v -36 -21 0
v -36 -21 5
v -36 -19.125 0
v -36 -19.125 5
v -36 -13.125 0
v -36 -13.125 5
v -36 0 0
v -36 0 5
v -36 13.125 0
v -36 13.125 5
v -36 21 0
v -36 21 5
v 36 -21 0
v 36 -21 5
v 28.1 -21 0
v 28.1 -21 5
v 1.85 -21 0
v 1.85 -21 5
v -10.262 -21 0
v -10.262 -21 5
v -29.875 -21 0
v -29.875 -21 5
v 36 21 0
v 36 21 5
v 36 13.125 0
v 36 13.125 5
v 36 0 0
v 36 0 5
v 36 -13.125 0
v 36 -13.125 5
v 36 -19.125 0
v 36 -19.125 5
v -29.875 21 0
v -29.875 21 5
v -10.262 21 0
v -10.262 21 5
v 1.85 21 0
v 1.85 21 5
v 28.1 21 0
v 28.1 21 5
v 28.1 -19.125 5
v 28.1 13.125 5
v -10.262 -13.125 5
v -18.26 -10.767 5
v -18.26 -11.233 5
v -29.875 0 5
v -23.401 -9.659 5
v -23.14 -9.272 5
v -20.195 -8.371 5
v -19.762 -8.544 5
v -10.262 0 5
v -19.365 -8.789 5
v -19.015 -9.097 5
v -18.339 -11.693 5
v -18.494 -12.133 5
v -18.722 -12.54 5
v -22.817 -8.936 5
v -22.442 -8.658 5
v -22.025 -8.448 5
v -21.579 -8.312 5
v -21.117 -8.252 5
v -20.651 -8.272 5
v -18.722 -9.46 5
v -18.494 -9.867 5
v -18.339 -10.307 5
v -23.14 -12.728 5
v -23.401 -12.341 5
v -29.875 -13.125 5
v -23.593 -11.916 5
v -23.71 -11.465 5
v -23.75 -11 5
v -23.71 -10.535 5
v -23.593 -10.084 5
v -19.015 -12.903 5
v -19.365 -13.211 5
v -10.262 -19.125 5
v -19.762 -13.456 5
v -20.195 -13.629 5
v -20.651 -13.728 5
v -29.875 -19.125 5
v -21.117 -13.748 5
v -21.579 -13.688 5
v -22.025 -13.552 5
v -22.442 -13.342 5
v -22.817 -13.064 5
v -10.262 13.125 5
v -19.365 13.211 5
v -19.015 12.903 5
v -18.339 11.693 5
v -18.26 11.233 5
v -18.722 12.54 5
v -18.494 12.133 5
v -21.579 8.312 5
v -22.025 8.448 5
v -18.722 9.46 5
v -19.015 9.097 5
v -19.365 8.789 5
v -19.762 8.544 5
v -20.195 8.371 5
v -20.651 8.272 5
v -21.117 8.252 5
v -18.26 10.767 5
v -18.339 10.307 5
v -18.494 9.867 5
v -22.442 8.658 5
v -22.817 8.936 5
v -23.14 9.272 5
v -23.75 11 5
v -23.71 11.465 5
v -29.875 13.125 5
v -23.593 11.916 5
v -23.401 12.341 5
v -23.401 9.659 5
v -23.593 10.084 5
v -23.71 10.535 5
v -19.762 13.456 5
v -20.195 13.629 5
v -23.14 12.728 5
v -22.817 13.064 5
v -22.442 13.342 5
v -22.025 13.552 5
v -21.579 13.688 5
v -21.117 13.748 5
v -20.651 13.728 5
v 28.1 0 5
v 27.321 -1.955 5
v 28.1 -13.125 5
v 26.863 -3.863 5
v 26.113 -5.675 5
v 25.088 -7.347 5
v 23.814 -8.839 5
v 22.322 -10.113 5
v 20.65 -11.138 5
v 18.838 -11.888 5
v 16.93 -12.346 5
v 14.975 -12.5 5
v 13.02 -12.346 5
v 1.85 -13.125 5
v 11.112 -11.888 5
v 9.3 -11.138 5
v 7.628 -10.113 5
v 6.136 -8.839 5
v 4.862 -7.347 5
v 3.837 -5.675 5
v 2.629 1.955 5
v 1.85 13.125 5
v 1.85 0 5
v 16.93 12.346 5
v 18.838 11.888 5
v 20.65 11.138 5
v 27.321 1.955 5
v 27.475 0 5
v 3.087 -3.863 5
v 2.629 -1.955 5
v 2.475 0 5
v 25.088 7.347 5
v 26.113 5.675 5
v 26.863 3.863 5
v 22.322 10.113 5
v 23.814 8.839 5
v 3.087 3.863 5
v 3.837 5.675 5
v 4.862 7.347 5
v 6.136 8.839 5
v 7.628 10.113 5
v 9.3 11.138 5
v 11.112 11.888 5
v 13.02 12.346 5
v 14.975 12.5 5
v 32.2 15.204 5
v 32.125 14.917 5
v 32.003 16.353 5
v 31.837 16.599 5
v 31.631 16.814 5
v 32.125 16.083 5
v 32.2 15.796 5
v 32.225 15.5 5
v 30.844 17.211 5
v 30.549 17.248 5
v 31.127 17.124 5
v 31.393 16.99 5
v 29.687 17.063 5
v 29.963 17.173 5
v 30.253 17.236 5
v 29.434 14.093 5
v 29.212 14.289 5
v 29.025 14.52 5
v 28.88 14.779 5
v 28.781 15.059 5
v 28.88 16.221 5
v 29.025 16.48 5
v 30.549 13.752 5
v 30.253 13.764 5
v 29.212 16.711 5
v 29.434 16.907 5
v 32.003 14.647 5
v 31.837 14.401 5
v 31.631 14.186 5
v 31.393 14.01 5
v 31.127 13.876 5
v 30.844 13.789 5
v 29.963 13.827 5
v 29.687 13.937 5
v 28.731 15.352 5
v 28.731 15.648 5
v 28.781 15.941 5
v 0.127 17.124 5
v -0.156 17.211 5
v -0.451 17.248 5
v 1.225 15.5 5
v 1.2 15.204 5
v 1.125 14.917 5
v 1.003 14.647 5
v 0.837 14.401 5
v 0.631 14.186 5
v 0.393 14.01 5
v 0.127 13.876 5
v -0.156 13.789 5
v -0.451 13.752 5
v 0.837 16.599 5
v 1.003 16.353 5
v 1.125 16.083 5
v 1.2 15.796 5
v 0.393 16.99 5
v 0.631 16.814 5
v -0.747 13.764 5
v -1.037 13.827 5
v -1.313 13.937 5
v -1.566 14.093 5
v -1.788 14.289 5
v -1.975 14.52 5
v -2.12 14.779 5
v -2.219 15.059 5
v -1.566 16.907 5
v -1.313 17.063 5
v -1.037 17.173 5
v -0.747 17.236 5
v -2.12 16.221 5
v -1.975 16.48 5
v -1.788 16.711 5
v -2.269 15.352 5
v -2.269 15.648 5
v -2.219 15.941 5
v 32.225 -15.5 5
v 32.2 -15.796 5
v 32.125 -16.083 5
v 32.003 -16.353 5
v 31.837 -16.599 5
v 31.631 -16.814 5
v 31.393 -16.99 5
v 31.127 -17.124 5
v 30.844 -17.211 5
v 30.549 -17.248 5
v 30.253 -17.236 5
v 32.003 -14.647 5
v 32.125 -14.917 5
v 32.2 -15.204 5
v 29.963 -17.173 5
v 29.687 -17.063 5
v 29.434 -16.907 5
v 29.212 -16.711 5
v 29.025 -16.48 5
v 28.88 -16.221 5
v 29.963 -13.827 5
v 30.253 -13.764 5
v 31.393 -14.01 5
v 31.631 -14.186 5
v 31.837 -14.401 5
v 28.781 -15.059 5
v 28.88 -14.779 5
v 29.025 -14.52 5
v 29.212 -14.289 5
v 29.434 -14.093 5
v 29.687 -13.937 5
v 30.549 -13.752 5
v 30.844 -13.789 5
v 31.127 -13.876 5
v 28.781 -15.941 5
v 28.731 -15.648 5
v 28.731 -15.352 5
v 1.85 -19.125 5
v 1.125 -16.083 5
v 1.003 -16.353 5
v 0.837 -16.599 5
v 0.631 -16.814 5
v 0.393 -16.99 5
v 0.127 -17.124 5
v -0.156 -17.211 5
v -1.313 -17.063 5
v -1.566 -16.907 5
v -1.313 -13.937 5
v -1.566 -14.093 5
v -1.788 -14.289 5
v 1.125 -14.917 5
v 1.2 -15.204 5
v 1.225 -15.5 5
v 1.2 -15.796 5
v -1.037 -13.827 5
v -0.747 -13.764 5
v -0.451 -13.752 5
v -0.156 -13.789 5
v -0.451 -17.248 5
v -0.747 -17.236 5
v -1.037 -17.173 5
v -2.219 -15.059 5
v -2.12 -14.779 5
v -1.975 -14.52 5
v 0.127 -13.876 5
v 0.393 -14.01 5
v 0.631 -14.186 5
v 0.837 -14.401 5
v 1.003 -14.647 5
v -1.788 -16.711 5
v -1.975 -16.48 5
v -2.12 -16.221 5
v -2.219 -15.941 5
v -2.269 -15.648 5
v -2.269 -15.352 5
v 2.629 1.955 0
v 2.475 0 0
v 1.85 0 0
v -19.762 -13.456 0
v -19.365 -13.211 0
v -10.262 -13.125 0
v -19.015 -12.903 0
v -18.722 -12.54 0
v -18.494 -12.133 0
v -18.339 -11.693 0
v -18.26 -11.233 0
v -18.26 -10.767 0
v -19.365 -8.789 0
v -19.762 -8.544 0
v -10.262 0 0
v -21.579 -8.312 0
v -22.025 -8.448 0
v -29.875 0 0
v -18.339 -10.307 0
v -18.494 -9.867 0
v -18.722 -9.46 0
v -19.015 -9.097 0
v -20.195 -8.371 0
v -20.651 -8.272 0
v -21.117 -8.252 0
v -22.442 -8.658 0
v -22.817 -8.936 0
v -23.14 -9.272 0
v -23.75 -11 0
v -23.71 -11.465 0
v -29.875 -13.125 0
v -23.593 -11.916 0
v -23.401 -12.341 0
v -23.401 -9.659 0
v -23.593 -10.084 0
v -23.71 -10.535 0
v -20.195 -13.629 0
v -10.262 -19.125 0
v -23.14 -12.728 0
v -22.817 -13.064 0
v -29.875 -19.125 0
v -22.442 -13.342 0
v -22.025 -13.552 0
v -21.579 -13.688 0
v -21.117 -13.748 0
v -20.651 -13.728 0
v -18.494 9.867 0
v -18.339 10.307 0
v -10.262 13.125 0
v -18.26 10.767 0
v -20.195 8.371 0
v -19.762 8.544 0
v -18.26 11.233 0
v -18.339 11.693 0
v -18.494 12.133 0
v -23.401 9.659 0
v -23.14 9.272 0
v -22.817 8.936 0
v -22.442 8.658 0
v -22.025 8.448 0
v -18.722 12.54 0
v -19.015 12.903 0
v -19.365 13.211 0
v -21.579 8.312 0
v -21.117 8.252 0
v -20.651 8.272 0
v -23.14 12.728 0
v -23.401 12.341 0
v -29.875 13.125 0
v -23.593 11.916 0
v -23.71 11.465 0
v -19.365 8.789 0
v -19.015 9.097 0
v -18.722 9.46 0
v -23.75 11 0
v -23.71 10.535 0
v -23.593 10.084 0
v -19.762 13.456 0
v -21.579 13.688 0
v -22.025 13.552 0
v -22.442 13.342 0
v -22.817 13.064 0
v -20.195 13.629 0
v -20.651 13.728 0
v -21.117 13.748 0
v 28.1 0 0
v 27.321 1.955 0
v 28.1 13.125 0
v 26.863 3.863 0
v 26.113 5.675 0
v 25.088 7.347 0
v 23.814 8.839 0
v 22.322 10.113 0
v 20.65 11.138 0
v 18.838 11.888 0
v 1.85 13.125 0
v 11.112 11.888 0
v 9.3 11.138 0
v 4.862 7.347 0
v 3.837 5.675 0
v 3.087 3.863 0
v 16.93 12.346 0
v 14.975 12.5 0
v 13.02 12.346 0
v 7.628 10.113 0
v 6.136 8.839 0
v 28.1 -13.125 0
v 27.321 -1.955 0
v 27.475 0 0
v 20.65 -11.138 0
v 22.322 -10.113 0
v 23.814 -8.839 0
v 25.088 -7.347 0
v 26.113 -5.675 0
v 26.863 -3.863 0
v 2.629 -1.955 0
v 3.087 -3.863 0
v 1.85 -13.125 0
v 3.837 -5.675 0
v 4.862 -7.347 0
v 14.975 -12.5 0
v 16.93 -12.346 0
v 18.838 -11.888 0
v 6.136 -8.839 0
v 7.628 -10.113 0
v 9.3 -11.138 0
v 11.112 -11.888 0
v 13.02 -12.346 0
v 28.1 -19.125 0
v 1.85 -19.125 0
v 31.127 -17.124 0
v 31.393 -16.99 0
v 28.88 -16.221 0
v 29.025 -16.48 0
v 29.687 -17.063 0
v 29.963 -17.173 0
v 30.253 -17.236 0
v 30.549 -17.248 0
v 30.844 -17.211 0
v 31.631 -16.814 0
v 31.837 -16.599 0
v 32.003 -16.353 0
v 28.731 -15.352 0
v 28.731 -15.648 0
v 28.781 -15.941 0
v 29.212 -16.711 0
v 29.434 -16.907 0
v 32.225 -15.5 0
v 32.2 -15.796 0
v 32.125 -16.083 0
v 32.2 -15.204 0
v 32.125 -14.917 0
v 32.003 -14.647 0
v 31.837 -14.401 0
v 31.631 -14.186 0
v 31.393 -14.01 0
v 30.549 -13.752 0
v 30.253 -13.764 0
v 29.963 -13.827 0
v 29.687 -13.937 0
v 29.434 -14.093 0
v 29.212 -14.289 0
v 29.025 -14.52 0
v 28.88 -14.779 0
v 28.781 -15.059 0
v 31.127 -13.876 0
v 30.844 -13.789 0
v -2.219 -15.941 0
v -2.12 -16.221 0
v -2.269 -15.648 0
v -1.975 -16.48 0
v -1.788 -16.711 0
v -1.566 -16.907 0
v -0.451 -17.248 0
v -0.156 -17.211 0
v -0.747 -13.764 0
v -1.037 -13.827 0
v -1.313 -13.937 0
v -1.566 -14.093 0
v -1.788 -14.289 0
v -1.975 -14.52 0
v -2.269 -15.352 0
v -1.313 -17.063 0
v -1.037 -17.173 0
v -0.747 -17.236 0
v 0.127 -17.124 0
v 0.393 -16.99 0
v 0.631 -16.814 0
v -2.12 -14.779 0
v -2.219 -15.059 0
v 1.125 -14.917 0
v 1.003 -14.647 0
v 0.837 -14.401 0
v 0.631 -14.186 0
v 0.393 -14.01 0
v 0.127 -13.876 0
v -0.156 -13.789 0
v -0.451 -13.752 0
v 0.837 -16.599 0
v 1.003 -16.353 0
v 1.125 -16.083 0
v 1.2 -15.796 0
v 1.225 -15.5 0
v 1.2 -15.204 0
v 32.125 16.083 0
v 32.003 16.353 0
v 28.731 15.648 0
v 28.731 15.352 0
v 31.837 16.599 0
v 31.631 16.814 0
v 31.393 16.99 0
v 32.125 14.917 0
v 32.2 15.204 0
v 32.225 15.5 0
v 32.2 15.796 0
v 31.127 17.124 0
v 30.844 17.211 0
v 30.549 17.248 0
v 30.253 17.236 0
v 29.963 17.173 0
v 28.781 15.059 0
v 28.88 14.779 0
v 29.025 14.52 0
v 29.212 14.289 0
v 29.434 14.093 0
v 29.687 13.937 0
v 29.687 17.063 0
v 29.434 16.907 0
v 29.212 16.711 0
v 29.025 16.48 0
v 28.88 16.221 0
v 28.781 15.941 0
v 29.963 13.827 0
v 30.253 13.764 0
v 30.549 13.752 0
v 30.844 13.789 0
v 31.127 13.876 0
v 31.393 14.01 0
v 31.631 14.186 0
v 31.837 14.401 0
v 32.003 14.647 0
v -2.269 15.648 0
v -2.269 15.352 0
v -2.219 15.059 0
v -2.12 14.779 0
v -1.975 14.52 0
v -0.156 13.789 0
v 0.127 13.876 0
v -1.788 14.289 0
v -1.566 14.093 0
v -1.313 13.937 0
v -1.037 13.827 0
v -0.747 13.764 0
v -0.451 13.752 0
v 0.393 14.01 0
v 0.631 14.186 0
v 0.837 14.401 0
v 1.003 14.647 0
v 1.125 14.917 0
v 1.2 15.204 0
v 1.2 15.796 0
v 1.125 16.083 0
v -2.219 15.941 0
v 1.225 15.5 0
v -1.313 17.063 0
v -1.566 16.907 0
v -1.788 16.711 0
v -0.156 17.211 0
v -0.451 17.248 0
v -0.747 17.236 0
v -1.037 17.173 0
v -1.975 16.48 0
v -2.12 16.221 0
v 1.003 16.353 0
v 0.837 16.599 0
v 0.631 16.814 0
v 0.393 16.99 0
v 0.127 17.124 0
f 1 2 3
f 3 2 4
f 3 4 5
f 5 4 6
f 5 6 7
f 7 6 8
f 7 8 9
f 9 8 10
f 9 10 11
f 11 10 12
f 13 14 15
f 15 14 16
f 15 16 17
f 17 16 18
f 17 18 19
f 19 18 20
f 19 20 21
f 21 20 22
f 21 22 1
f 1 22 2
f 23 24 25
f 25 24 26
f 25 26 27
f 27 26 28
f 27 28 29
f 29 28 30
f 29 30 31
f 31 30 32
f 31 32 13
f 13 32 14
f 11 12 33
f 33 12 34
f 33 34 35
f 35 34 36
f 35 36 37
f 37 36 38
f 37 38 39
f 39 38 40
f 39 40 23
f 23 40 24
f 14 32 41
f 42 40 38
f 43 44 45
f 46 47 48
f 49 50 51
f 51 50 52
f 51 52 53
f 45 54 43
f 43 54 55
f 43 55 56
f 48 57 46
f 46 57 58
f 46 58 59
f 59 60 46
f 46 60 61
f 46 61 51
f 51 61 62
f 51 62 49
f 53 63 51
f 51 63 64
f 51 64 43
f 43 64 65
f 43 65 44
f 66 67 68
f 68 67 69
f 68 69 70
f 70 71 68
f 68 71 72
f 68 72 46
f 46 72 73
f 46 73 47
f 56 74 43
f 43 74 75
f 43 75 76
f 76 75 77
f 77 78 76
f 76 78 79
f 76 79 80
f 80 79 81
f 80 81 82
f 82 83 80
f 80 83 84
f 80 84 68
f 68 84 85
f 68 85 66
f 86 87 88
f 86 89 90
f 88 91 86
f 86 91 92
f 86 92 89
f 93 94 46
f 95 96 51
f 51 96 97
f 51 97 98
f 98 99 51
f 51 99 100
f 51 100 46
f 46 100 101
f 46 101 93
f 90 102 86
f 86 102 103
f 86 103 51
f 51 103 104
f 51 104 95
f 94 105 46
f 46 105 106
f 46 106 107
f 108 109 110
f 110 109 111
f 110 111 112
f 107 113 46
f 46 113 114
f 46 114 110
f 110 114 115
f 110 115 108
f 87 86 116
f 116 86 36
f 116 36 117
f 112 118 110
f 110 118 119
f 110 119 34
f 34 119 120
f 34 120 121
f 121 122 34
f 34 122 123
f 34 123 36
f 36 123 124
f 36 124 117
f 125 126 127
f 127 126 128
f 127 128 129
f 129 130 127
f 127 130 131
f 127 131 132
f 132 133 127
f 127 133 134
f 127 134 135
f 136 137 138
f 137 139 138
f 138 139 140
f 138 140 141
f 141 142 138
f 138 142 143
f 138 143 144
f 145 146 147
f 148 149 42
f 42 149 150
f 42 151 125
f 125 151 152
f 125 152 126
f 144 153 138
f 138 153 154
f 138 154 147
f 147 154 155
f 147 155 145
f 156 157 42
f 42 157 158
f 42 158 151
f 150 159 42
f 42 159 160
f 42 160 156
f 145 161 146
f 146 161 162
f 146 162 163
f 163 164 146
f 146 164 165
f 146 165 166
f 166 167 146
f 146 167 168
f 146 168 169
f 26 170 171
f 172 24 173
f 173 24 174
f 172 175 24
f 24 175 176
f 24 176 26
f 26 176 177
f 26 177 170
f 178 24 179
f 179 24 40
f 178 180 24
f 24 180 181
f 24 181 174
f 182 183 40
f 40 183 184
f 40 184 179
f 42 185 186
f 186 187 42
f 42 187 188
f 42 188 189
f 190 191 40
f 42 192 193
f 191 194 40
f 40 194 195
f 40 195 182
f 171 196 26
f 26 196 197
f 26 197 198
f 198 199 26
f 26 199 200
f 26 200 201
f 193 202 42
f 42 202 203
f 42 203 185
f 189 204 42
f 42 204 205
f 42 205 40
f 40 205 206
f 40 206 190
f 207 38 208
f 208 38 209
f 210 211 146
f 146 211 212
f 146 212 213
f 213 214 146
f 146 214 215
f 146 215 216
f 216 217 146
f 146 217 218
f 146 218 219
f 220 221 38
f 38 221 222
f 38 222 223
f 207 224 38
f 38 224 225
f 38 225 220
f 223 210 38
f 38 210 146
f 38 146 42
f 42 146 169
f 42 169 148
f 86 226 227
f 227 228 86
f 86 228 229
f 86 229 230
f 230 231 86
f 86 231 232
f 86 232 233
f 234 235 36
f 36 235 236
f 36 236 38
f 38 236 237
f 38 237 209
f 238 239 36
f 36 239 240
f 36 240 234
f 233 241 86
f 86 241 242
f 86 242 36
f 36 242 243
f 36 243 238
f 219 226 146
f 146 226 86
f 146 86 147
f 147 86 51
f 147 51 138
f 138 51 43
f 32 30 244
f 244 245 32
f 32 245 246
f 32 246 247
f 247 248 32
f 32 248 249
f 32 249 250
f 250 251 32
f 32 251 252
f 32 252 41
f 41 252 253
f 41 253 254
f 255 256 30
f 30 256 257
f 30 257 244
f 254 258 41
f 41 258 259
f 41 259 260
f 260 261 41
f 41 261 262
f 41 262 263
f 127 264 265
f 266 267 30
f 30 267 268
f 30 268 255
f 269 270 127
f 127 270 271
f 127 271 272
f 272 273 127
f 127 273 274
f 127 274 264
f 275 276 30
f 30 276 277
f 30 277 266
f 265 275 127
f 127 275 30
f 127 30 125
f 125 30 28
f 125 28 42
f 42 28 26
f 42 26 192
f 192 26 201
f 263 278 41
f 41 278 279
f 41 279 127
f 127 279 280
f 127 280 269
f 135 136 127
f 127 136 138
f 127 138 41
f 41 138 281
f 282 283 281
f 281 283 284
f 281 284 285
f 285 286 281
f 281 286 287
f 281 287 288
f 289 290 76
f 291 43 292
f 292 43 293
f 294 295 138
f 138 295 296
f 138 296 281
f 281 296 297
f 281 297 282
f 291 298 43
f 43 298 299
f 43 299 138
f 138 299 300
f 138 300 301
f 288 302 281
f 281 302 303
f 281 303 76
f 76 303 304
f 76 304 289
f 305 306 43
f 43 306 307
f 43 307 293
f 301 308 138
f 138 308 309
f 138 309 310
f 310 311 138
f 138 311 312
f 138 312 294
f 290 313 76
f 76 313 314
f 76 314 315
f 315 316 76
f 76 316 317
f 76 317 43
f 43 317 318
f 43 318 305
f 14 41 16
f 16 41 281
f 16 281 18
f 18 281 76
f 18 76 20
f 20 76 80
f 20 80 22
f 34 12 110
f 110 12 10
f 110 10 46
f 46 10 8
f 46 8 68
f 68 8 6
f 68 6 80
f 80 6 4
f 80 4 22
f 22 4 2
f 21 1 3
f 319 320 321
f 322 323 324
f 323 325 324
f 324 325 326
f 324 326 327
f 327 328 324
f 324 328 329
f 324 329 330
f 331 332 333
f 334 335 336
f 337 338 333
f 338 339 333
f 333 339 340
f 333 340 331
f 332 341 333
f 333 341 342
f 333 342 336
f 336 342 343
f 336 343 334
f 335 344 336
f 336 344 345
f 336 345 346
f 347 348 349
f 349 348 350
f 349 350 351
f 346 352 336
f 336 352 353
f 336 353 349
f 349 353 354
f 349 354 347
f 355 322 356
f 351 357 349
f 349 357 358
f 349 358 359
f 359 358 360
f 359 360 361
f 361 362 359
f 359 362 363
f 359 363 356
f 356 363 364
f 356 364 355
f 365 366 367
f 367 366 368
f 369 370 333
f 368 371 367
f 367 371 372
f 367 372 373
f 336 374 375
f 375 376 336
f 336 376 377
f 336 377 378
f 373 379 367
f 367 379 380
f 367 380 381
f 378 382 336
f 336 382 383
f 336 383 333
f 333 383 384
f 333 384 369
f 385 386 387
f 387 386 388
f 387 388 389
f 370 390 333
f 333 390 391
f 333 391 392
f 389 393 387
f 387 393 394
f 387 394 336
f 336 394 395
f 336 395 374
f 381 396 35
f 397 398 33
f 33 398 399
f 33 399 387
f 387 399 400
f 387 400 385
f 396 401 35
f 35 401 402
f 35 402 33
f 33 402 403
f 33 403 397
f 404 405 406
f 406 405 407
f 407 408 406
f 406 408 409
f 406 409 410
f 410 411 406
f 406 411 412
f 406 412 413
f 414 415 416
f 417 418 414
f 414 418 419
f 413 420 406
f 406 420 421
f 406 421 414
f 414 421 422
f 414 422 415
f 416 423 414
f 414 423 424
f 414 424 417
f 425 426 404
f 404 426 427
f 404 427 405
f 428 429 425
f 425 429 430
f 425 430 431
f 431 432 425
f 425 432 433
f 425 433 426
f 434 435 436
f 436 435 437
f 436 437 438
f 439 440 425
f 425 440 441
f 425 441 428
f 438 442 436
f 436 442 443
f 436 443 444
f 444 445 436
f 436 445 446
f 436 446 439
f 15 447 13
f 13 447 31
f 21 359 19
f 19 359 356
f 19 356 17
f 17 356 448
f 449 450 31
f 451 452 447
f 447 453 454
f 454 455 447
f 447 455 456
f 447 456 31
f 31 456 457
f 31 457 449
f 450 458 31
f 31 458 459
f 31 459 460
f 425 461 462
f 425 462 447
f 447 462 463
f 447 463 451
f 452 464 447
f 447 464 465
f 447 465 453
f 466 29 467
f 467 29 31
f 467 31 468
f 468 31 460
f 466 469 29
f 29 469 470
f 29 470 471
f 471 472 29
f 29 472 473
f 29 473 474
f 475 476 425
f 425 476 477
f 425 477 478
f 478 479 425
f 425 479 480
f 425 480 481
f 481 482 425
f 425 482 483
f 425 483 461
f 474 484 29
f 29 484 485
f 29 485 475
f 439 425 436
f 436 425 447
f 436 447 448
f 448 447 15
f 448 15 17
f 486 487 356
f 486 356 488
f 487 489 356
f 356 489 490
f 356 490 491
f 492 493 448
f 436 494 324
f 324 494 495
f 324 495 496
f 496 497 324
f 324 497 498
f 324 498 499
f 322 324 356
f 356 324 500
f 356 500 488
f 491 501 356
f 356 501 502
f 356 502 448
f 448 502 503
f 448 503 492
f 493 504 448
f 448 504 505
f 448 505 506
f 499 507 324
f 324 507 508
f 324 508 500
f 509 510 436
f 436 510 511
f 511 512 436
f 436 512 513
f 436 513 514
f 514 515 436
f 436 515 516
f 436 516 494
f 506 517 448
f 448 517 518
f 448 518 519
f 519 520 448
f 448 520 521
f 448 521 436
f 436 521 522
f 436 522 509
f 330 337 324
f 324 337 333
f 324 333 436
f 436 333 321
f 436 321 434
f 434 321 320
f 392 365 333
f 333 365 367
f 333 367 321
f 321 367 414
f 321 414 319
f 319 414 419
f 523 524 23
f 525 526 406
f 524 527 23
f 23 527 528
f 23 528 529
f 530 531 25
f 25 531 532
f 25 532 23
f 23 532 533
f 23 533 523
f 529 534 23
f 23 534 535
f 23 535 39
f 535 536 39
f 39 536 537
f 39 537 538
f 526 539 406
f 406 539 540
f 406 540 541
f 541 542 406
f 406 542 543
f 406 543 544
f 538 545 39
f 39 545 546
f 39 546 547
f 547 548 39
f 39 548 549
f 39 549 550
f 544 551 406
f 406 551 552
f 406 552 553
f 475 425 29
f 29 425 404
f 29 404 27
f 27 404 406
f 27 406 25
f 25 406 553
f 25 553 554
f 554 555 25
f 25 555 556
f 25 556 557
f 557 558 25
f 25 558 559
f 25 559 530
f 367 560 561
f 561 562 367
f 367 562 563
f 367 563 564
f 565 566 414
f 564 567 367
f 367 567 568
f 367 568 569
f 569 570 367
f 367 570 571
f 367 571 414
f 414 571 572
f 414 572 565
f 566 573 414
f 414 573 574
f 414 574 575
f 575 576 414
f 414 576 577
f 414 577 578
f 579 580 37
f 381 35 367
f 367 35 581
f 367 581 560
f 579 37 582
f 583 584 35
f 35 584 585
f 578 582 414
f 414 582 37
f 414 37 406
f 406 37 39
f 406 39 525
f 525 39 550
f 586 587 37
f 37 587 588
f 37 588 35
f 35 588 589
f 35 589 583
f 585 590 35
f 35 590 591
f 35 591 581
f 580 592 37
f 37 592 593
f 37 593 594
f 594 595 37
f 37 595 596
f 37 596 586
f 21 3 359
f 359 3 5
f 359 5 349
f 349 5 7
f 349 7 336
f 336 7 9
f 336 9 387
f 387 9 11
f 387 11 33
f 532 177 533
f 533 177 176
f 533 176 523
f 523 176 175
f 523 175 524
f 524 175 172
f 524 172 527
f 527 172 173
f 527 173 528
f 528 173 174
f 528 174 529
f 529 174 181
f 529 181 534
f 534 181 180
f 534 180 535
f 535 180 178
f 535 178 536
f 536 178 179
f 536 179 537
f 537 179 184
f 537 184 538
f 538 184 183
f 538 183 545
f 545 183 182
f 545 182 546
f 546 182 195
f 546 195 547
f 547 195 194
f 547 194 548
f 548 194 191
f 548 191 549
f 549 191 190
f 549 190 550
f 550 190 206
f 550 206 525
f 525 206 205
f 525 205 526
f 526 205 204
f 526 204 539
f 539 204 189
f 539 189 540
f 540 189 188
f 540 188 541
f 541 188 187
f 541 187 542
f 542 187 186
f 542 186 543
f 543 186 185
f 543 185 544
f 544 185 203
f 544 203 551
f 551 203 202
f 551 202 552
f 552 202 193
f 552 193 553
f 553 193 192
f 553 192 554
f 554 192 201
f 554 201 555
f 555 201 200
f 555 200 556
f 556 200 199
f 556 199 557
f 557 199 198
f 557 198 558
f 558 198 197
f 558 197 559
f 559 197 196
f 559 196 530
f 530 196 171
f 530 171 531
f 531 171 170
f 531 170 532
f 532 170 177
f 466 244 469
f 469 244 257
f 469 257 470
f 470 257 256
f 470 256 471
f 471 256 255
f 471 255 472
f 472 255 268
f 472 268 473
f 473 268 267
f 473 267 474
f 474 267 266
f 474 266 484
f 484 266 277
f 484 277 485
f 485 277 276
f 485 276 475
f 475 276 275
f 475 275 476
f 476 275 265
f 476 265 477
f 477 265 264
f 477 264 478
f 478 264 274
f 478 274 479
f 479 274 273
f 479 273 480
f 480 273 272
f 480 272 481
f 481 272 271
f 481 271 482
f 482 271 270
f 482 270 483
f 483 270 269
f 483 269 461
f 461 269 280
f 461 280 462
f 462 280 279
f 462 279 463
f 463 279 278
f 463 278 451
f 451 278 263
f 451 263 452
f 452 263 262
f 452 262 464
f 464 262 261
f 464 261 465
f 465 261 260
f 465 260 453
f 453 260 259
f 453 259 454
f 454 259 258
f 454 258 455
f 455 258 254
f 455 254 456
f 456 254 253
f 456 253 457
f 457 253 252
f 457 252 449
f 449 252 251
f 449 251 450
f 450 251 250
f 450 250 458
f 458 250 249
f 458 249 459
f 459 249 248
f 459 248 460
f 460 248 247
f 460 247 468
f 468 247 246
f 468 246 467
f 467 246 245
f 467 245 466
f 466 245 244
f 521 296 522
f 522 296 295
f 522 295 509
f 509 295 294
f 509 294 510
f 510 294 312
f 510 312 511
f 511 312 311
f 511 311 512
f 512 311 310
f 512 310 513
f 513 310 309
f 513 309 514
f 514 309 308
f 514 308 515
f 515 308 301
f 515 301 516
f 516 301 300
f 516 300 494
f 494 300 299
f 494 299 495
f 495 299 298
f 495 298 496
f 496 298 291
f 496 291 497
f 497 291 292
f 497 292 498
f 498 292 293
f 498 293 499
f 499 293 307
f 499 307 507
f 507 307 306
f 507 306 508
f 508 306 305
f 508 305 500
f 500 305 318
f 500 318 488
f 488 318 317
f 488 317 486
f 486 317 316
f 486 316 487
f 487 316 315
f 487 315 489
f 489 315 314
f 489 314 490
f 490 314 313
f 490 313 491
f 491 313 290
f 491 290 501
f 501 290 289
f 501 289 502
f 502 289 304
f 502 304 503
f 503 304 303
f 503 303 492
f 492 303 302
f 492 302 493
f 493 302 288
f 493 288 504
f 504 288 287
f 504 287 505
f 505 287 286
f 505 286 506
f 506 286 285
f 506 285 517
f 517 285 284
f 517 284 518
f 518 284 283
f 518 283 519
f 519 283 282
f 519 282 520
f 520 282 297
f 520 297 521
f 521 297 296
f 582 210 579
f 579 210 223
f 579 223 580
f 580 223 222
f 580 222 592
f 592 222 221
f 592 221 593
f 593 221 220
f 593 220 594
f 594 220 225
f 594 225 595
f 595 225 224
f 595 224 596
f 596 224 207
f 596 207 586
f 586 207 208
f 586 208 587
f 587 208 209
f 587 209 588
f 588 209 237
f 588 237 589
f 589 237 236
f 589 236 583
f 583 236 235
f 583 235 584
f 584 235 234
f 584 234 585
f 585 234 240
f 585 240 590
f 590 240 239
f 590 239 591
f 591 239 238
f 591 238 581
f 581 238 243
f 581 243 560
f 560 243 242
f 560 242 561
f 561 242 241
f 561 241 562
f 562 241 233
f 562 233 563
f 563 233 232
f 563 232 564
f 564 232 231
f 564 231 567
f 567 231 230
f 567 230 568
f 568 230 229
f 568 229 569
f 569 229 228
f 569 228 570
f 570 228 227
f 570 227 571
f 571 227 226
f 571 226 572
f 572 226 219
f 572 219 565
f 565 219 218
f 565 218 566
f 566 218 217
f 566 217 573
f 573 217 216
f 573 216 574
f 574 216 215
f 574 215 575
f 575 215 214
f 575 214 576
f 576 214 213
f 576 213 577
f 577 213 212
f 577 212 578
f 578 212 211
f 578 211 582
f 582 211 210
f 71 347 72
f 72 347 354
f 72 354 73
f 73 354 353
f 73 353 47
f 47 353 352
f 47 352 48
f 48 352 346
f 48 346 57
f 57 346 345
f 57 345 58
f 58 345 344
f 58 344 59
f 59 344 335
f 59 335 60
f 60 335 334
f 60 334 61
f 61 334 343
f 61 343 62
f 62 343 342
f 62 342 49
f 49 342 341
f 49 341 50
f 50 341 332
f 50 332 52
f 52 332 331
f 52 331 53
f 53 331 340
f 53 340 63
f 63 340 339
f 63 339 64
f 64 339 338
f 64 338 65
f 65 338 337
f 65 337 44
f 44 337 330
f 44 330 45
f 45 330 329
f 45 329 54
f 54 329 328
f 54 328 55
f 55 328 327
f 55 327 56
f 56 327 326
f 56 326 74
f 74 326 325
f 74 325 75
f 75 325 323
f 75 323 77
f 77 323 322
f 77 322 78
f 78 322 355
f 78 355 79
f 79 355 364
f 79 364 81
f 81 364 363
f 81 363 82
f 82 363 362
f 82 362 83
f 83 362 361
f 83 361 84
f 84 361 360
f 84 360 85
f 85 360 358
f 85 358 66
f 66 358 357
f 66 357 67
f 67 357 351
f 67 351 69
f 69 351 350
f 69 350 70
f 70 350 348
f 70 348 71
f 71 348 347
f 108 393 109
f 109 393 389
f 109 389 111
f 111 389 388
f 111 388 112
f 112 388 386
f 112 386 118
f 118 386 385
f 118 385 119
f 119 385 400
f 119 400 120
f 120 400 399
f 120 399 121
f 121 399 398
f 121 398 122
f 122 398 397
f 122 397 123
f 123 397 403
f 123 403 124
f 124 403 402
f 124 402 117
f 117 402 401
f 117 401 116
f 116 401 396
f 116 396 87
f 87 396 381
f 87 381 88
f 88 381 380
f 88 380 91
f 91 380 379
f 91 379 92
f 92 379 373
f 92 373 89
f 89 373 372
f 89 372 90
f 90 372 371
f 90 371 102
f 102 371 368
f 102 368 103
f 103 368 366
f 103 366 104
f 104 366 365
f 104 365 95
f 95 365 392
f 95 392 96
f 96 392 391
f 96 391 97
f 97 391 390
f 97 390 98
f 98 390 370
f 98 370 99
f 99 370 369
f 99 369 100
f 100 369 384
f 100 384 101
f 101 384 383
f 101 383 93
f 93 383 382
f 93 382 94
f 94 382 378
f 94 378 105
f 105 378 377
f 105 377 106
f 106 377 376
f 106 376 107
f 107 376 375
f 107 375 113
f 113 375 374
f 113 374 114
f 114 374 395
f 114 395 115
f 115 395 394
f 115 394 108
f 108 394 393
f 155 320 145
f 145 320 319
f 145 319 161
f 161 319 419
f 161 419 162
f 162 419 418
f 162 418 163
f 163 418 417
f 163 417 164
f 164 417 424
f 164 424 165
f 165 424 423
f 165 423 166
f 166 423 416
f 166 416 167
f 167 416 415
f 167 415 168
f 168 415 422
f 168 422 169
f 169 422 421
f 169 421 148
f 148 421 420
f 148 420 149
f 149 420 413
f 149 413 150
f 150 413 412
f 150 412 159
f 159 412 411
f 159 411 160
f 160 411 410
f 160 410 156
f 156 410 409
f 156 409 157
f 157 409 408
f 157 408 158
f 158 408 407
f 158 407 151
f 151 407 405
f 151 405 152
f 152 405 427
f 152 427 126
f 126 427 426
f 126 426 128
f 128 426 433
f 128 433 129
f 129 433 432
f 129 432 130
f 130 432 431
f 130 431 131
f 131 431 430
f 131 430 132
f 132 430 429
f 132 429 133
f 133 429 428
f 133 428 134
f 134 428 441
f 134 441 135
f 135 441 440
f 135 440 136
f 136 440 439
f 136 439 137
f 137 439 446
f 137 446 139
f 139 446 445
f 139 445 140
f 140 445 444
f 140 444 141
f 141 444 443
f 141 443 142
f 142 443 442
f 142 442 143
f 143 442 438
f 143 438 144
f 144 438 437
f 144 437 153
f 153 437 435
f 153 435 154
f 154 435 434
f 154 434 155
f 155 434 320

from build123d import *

# Parameters (mm, degrees)
SKETCH1_W           = 72
SKETCH1_H           = 42
BOSS_EXTRUDE1_DEPTH = 5
SKETCH2_R           = 1.75
CUT_EXTRUDE1_DEPTH  = 10
D_GAGEMENT_M51_D    = 5.5
SKETCH6_R           = 12.5
CUT_EXTRUDE2_DEPTH  = 42.976183724


with BuildPart() as part:
    # Sketch1 → Boss-Extrude1 (new body)
    with BuildSketch(Plane.XY):
        Rectangle(SKETCH1_W, SKETCH1_H)
    extrude(amount=BOSS_EXTRUDE1_DEPTH)

    # Sketch2 → Cut-Extrude1 (cut)
    with BuildSketch(Plane.XY.offset(5)):
        with Locations((30.475, 15.5)):
            Circle(SKETCH2_R)
        with Locations((30.475, -15.5)):
            Circle(SKETCH2_R)
        with Locations((-0.525, -15.5)):
            Circle(SKETCH2_R)
        with Locations((-0.525, 15.5)):
            Circle(SKETCH2_R)
    extrude(amount=-CUT_EXTRUDE1_DEPTH, mode=Mode.SUBTRACT)

    # Dégagement M51 (through all)
    with Locations(Plane(origin=(0, 0, 0), x_dir=(-1, 0, 0), z_dir=(0, 0, -1))):
        with Locations((21, 11), (21, -11)):
            Hole(D_GAGEMENT_M51_D / 2)

    # Sketch6 → Cut-Extrude2 (cut, through all)
    with BuildSketch(Plane(origin=(0, 0, 0), x_dir=(-1, 0, 0), z_dir=(0, 0, -1))):
        with Locations((-14.975, 0)):
            Circle(SKETCH6_R)
    extrude(amount=-CUT_EXTRUDE2_DEPTH, mode=Mode.SUBTRACT)


solid = part.part
